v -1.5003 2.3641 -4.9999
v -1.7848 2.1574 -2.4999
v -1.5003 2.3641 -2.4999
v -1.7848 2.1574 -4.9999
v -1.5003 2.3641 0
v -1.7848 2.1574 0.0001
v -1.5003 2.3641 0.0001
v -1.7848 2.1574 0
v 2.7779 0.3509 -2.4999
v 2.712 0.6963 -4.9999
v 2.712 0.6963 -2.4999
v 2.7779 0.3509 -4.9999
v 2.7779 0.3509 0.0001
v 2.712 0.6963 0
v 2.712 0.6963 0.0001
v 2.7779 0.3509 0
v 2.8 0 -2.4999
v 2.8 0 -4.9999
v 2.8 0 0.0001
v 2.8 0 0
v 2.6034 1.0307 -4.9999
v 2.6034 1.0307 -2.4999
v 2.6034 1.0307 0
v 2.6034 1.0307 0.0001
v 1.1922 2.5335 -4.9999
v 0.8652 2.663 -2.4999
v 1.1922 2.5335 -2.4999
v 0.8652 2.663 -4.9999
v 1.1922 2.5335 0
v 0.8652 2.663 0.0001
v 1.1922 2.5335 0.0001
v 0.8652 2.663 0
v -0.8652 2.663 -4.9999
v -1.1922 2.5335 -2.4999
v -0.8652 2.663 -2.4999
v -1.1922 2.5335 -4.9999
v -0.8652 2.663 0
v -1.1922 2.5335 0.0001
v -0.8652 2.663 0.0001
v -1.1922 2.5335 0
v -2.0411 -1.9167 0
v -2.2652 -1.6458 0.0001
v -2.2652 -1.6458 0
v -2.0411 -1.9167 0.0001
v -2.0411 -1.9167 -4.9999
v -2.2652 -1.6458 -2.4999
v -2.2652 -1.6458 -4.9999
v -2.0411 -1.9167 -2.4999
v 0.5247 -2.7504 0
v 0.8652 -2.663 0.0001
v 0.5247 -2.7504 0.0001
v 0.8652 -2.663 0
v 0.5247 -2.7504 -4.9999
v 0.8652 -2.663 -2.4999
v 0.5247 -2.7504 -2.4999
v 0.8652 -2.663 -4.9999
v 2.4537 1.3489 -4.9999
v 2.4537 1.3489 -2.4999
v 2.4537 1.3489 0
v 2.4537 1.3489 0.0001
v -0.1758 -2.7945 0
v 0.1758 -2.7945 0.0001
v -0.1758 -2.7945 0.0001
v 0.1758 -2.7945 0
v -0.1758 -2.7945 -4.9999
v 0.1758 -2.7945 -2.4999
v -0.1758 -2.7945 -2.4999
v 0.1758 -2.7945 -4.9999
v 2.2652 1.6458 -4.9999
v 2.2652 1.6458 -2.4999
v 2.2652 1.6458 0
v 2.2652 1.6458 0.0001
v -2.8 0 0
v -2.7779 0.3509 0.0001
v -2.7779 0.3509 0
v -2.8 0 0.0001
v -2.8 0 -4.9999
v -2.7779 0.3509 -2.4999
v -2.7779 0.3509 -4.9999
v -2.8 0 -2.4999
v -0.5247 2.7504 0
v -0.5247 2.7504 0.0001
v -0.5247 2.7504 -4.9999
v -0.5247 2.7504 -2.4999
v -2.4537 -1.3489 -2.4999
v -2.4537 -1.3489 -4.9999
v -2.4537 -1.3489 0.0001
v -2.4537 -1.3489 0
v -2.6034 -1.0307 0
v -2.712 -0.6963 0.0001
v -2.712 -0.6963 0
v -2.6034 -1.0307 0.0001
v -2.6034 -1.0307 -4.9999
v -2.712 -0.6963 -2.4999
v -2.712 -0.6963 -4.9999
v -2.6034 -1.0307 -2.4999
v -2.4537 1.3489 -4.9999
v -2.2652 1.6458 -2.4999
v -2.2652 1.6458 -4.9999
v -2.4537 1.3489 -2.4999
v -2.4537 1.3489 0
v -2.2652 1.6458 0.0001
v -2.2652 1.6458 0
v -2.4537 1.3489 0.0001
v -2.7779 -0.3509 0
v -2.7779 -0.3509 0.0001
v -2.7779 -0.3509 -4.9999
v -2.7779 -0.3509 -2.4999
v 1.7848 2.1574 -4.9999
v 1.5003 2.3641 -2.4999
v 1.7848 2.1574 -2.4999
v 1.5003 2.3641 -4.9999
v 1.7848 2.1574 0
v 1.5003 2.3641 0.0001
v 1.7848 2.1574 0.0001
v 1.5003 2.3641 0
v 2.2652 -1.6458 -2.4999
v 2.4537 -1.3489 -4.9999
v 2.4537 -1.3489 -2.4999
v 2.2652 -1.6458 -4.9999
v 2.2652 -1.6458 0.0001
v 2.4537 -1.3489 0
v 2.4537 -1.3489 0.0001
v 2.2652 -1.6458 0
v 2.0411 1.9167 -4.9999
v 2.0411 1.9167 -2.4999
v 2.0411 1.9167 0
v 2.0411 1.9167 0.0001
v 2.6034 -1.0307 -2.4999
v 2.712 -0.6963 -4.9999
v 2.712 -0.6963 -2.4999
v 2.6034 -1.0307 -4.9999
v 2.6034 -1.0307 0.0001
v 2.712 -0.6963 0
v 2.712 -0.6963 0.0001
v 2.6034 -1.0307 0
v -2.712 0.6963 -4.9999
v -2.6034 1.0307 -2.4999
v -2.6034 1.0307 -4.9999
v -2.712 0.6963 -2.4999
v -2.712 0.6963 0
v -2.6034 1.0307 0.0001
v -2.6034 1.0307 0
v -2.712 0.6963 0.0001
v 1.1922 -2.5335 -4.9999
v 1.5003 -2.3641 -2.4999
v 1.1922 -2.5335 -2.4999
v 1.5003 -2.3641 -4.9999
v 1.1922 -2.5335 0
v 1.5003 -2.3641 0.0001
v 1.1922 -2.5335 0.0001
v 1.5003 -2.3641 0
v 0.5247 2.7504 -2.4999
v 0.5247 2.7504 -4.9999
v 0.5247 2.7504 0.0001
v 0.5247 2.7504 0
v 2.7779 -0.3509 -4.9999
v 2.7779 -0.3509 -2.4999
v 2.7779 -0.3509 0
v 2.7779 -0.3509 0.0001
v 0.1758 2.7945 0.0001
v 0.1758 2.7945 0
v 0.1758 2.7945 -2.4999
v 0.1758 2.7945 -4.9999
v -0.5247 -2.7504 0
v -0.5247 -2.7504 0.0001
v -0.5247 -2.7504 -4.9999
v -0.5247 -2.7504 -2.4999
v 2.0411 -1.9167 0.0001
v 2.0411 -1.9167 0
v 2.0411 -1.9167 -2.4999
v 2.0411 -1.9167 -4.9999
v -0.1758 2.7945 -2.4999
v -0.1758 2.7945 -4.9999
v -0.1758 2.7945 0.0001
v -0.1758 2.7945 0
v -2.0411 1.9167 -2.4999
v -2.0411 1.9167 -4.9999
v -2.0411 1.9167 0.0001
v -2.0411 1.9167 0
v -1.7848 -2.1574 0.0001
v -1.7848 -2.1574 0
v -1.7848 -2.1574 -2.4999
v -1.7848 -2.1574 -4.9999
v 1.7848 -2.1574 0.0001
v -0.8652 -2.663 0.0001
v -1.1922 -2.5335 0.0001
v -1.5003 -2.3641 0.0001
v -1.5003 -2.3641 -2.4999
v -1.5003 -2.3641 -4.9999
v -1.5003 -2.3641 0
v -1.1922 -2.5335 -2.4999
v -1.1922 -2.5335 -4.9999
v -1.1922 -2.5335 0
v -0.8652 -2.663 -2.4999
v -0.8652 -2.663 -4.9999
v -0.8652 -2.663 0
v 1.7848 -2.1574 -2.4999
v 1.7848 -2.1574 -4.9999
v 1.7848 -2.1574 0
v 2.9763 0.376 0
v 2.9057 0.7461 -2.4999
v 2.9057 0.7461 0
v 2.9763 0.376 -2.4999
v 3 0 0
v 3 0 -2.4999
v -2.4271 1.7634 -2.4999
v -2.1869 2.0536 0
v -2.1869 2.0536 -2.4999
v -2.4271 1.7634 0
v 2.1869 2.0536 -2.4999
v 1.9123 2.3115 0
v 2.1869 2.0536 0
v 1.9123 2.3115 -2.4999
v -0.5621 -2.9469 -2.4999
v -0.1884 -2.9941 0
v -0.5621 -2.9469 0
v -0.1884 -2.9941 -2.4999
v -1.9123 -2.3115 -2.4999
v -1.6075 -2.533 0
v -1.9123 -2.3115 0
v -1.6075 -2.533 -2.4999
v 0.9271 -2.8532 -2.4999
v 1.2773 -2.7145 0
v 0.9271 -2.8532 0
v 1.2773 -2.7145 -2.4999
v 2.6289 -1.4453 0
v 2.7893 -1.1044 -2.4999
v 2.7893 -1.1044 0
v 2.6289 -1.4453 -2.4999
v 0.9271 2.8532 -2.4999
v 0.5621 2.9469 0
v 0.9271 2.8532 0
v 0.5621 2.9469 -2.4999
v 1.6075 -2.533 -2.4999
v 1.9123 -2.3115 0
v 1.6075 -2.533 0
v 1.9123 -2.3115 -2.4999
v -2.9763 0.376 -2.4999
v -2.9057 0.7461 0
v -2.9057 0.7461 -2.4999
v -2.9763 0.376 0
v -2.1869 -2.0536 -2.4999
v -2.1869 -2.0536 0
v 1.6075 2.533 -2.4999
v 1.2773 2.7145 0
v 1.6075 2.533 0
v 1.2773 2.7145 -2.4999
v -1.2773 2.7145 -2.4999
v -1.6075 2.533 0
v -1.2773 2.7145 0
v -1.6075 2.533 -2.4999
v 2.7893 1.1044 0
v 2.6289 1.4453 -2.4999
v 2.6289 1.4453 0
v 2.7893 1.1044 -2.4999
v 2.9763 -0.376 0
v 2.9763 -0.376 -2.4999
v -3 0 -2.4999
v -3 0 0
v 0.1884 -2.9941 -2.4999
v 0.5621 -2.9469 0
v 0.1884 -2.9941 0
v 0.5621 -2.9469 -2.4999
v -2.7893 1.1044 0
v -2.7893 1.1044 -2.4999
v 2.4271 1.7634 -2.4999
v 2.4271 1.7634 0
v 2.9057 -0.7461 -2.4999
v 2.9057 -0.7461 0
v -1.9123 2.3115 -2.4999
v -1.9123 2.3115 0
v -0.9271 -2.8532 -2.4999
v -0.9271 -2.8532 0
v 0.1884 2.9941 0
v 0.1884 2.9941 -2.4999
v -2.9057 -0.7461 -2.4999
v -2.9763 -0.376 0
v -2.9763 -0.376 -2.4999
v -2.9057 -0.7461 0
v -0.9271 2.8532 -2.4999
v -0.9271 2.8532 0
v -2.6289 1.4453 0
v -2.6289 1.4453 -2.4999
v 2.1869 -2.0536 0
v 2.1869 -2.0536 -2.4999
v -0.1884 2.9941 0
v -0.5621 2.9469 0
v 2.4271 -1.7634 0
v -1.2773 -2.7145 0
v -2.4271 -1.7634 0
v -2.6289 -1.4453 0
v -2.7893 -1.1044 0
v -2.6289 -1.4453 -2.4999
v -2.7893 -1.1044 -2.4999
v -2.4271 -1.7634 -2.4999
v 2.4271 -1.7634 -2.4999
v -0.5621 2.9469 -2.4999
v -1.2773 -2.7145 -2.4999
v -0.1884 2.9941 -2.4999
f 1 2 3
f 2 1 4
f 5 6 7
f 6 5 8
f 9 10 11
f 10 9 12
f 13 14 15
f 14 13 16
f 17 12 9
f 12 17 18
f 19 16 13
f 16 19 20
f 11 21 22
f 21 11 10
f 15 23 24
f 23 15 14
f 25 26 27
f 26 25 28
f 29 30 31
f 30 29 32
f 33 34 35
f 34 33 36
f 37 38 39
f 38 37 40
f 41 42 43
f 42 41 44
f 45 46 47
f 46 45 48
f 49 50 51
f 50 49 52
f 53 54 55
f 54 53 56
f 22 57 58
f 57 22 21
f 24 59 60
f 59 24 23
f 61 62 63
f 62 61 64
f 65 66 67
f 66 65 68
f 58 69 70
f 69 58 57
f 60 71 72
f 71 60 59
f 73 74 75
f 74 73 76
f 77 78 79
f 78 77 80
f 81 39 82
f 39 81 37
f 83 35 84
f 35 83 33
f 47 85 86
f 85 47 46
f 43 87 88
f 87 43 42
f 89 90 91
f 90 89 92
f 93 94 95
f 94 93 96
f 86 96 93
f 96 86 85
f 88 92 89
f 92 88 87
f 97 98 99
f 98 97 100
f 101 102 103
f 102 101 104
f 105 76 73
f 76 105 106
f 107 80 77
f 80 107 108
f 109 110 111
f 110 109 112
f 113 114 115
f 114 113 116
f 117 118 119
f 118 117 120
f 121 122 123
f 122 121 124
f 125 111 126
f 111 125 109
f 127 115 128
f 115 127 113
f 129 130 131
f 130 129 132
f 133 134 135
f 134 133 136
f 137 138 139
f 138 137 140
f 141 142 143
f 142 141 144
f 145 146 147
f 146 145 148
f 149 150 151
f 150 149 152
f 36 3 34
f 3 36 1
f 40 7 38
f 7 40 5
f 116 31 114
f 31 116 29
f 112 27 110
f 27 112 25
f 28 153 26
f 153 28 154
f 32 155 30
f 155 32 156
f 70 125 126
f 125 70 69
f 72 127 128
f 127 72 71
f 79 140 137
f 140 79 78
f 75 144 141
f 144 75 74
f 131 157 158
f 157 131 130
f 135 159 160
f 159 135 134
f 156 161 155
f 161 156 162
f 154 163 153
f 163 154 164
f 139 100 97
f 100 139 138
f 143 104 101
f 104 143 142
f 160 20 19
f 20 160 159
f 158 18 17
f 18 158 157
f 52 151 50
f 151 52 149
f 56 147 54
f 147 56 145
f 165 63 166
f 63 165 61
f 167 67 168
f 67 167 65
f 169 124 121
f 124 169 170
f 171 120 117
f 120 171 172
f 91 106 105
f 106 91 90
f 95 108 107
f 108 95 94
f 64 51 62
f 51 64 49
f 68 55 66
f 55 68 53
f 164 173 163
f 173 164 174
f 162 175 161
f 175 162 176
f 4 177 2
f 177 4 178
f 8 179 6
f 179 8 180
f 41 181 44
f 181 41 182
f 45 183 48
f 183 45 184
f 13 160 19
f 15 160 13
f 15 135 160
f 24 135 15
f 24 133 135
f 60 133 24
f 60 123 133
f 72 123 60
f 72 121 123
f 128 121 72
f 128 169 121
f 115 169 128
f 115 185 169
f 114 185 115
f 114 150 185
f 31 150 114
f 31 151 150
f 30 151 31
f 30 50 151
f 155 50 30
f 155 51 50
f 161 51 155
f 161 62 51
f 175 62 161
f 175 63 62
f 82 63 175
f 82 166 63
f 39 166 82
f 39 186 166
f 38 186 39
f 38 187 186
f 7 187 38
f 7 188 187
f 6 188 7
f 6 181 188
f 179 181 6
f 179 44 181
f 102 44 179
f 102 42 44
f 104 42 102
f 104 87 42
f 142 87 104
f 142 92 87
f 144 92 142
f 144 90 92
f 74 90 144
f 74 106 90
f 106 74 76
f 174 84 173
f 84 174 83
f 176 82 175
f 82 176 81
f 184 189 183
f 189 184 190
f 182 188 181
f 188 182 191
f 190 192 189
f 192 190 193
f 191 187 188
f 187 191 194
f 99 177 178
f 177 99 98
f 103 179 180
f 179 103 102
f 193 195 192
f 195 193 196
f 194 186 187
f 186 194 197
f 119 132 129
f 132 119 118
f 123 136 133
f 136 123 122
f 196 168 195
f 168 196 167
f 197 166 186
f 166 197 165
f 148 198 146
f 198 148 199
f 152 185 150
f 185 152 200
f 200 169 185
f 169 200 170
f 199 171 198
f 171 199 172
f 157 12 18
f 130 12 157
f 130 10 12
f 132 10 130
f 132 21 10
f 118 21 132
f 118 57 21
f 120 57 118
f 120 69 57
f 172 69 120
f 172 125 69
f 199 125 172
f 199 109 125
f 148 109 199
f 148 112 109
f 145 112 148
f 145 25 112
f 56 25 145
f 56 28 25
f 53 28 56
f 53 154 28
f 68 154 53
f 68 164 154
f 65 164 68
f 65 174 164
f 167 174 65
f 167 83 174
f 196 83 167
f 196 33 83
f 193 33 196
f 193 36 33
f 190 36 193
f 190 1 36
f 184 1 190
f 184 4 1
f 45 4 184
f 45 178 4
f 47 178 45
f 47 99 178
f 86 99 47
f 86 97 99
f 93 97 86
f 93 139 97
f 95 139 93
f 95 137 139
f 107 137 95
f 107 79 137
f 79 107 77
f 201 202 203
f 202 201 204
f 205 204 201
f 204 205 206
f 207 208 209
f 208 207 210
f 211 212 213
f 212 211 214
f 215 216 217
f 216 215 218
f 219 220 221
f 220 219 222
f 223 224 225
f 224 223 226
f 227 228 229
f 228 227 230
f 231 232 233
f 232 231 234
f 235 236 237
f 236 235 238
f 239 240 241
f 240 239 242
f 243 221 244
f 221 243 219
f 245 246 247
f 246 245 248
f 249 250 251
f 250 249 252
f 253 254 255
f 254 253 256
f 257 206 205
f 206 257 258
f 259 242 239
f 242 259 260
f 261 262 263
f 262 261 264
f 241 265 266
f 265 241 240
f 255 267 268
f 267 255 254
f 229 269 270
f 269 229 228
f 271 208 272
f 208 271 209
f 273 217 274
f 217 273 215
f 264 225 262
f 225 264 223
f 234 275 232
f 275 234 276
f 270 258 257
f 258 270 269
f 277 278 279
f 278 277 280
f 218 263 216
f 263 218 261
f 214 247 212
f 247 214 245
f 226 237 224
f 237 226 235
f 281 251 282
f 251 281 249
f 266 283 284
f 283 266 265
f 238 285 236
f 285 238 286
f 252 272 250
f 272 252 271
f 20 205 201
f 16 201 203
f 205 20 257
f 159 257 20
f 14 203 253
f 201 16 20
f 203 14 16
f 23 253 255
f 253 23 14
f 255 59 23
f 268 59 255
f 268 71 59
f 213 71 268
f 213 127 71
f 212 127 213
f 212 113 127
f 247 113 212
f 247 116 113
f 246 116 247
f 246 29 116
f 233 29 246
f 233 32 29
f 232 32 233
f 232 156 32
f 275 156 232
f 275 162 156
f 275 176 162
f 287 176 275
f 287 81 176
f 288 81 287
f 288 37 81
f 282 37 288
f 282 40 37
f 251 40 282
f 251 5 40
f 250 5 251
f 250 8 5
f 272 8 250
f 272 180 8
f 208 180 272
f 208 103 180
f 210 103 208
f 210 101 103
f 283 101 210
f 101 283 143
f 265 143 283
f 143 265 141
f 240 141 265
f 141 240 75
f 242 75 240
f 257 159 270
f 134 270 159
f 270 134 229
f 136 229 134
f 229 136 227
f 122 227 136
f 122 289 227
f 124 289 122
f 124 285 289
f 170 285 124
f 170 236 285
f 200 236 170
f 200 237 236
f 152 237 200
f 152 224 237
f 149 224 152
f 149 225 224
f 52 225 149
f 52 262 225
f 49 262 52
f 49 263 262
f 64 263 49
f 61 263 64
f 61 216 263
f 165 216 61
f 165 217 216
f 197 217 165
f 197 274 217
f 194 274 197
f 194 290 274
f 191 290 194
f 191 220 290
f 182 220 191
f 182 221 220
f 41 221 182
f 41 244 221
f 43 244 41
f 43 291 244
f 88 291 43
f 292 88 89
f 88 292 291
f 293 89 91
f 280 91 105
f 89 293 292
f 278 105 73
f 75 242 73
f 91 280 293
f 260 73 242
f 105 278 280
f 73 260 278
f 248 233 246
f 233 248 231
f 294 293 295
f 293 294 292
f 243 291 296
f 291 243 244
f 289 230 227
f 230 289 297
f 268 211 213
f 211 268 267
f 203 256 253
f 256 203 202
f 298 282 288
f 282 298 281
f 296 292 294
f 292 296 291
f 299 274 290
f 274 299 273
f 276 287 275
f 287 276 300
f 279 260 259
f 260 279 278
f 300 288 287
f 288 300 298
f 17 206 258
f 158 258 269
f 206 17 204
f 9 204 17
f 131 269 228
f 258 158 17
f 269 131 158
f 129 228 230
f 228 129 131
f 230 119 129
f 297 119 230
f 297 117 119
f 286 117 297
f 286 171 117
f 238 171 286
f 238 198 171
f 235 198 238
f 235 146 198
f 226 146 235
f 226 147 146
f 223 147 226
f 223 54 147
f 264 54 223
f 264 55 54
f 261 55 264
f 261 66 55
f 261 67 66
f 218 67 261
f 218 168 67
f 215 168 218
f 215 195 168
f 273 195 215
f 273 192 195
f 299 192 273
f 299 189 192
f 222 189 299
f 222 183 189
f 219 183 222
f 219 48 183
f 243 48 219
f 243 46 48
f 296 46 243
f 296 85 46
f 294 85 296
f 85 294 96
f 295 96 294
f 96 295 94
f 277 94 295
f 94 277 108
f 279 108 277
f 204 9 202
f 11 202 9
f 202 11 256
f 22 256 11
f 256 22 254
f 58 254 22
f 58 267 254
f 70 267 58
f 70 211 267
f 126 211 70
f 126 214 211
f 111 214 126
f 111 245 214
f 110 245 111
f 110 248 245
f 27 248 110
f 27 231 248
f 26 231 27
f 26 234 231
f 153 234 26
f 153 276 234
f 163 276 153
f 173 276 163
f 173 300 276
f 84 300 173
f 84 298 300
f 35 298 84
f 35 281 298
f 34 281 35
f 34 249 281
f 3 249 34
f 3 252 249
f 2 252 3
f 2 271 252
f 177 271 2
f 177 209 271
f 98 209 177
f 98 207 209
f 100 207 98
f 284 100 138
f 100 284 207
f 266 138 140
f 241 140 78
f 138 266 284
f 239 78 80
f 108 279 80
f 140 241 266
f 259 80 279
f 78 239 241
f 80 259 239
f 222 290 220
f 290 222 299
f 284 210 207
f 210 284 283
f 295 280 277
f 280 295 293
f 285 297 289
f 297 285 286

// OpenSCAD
// tray for attaching feather boards to body assembly
// 1 unit = 1 mm

// minor overlap to keep openscad clear on whether objects are actually separate
overlap = 0.0001;
$fn = 50;

/* Dimension global constants  ---------------------------------------- */

// center mounting hole in the backbone
center_hole_radius = 2.8; // works out to fit hole w/radius=3 ??
backbone_height = 8;
tray_bottom_thickness = 1;

center_post_offset = -backbone_height / 2 - tray_bottom_thickness + overlap;


/* Parts  ---------------------------------------------------------------*/

module
center_post()
{
    post_height = tray_bottom_thickness + backbone_height / 2;
    translate([ 0, 0, center_post_offset ])
        cylinder(r = center_hole_radius,
                 h = post_height);
    translate([0, 0, center_post_offset / 2])
        cylinder(r = center_hole_radius + 0.2,
                 h = post_height / 2);
}
center_post();
